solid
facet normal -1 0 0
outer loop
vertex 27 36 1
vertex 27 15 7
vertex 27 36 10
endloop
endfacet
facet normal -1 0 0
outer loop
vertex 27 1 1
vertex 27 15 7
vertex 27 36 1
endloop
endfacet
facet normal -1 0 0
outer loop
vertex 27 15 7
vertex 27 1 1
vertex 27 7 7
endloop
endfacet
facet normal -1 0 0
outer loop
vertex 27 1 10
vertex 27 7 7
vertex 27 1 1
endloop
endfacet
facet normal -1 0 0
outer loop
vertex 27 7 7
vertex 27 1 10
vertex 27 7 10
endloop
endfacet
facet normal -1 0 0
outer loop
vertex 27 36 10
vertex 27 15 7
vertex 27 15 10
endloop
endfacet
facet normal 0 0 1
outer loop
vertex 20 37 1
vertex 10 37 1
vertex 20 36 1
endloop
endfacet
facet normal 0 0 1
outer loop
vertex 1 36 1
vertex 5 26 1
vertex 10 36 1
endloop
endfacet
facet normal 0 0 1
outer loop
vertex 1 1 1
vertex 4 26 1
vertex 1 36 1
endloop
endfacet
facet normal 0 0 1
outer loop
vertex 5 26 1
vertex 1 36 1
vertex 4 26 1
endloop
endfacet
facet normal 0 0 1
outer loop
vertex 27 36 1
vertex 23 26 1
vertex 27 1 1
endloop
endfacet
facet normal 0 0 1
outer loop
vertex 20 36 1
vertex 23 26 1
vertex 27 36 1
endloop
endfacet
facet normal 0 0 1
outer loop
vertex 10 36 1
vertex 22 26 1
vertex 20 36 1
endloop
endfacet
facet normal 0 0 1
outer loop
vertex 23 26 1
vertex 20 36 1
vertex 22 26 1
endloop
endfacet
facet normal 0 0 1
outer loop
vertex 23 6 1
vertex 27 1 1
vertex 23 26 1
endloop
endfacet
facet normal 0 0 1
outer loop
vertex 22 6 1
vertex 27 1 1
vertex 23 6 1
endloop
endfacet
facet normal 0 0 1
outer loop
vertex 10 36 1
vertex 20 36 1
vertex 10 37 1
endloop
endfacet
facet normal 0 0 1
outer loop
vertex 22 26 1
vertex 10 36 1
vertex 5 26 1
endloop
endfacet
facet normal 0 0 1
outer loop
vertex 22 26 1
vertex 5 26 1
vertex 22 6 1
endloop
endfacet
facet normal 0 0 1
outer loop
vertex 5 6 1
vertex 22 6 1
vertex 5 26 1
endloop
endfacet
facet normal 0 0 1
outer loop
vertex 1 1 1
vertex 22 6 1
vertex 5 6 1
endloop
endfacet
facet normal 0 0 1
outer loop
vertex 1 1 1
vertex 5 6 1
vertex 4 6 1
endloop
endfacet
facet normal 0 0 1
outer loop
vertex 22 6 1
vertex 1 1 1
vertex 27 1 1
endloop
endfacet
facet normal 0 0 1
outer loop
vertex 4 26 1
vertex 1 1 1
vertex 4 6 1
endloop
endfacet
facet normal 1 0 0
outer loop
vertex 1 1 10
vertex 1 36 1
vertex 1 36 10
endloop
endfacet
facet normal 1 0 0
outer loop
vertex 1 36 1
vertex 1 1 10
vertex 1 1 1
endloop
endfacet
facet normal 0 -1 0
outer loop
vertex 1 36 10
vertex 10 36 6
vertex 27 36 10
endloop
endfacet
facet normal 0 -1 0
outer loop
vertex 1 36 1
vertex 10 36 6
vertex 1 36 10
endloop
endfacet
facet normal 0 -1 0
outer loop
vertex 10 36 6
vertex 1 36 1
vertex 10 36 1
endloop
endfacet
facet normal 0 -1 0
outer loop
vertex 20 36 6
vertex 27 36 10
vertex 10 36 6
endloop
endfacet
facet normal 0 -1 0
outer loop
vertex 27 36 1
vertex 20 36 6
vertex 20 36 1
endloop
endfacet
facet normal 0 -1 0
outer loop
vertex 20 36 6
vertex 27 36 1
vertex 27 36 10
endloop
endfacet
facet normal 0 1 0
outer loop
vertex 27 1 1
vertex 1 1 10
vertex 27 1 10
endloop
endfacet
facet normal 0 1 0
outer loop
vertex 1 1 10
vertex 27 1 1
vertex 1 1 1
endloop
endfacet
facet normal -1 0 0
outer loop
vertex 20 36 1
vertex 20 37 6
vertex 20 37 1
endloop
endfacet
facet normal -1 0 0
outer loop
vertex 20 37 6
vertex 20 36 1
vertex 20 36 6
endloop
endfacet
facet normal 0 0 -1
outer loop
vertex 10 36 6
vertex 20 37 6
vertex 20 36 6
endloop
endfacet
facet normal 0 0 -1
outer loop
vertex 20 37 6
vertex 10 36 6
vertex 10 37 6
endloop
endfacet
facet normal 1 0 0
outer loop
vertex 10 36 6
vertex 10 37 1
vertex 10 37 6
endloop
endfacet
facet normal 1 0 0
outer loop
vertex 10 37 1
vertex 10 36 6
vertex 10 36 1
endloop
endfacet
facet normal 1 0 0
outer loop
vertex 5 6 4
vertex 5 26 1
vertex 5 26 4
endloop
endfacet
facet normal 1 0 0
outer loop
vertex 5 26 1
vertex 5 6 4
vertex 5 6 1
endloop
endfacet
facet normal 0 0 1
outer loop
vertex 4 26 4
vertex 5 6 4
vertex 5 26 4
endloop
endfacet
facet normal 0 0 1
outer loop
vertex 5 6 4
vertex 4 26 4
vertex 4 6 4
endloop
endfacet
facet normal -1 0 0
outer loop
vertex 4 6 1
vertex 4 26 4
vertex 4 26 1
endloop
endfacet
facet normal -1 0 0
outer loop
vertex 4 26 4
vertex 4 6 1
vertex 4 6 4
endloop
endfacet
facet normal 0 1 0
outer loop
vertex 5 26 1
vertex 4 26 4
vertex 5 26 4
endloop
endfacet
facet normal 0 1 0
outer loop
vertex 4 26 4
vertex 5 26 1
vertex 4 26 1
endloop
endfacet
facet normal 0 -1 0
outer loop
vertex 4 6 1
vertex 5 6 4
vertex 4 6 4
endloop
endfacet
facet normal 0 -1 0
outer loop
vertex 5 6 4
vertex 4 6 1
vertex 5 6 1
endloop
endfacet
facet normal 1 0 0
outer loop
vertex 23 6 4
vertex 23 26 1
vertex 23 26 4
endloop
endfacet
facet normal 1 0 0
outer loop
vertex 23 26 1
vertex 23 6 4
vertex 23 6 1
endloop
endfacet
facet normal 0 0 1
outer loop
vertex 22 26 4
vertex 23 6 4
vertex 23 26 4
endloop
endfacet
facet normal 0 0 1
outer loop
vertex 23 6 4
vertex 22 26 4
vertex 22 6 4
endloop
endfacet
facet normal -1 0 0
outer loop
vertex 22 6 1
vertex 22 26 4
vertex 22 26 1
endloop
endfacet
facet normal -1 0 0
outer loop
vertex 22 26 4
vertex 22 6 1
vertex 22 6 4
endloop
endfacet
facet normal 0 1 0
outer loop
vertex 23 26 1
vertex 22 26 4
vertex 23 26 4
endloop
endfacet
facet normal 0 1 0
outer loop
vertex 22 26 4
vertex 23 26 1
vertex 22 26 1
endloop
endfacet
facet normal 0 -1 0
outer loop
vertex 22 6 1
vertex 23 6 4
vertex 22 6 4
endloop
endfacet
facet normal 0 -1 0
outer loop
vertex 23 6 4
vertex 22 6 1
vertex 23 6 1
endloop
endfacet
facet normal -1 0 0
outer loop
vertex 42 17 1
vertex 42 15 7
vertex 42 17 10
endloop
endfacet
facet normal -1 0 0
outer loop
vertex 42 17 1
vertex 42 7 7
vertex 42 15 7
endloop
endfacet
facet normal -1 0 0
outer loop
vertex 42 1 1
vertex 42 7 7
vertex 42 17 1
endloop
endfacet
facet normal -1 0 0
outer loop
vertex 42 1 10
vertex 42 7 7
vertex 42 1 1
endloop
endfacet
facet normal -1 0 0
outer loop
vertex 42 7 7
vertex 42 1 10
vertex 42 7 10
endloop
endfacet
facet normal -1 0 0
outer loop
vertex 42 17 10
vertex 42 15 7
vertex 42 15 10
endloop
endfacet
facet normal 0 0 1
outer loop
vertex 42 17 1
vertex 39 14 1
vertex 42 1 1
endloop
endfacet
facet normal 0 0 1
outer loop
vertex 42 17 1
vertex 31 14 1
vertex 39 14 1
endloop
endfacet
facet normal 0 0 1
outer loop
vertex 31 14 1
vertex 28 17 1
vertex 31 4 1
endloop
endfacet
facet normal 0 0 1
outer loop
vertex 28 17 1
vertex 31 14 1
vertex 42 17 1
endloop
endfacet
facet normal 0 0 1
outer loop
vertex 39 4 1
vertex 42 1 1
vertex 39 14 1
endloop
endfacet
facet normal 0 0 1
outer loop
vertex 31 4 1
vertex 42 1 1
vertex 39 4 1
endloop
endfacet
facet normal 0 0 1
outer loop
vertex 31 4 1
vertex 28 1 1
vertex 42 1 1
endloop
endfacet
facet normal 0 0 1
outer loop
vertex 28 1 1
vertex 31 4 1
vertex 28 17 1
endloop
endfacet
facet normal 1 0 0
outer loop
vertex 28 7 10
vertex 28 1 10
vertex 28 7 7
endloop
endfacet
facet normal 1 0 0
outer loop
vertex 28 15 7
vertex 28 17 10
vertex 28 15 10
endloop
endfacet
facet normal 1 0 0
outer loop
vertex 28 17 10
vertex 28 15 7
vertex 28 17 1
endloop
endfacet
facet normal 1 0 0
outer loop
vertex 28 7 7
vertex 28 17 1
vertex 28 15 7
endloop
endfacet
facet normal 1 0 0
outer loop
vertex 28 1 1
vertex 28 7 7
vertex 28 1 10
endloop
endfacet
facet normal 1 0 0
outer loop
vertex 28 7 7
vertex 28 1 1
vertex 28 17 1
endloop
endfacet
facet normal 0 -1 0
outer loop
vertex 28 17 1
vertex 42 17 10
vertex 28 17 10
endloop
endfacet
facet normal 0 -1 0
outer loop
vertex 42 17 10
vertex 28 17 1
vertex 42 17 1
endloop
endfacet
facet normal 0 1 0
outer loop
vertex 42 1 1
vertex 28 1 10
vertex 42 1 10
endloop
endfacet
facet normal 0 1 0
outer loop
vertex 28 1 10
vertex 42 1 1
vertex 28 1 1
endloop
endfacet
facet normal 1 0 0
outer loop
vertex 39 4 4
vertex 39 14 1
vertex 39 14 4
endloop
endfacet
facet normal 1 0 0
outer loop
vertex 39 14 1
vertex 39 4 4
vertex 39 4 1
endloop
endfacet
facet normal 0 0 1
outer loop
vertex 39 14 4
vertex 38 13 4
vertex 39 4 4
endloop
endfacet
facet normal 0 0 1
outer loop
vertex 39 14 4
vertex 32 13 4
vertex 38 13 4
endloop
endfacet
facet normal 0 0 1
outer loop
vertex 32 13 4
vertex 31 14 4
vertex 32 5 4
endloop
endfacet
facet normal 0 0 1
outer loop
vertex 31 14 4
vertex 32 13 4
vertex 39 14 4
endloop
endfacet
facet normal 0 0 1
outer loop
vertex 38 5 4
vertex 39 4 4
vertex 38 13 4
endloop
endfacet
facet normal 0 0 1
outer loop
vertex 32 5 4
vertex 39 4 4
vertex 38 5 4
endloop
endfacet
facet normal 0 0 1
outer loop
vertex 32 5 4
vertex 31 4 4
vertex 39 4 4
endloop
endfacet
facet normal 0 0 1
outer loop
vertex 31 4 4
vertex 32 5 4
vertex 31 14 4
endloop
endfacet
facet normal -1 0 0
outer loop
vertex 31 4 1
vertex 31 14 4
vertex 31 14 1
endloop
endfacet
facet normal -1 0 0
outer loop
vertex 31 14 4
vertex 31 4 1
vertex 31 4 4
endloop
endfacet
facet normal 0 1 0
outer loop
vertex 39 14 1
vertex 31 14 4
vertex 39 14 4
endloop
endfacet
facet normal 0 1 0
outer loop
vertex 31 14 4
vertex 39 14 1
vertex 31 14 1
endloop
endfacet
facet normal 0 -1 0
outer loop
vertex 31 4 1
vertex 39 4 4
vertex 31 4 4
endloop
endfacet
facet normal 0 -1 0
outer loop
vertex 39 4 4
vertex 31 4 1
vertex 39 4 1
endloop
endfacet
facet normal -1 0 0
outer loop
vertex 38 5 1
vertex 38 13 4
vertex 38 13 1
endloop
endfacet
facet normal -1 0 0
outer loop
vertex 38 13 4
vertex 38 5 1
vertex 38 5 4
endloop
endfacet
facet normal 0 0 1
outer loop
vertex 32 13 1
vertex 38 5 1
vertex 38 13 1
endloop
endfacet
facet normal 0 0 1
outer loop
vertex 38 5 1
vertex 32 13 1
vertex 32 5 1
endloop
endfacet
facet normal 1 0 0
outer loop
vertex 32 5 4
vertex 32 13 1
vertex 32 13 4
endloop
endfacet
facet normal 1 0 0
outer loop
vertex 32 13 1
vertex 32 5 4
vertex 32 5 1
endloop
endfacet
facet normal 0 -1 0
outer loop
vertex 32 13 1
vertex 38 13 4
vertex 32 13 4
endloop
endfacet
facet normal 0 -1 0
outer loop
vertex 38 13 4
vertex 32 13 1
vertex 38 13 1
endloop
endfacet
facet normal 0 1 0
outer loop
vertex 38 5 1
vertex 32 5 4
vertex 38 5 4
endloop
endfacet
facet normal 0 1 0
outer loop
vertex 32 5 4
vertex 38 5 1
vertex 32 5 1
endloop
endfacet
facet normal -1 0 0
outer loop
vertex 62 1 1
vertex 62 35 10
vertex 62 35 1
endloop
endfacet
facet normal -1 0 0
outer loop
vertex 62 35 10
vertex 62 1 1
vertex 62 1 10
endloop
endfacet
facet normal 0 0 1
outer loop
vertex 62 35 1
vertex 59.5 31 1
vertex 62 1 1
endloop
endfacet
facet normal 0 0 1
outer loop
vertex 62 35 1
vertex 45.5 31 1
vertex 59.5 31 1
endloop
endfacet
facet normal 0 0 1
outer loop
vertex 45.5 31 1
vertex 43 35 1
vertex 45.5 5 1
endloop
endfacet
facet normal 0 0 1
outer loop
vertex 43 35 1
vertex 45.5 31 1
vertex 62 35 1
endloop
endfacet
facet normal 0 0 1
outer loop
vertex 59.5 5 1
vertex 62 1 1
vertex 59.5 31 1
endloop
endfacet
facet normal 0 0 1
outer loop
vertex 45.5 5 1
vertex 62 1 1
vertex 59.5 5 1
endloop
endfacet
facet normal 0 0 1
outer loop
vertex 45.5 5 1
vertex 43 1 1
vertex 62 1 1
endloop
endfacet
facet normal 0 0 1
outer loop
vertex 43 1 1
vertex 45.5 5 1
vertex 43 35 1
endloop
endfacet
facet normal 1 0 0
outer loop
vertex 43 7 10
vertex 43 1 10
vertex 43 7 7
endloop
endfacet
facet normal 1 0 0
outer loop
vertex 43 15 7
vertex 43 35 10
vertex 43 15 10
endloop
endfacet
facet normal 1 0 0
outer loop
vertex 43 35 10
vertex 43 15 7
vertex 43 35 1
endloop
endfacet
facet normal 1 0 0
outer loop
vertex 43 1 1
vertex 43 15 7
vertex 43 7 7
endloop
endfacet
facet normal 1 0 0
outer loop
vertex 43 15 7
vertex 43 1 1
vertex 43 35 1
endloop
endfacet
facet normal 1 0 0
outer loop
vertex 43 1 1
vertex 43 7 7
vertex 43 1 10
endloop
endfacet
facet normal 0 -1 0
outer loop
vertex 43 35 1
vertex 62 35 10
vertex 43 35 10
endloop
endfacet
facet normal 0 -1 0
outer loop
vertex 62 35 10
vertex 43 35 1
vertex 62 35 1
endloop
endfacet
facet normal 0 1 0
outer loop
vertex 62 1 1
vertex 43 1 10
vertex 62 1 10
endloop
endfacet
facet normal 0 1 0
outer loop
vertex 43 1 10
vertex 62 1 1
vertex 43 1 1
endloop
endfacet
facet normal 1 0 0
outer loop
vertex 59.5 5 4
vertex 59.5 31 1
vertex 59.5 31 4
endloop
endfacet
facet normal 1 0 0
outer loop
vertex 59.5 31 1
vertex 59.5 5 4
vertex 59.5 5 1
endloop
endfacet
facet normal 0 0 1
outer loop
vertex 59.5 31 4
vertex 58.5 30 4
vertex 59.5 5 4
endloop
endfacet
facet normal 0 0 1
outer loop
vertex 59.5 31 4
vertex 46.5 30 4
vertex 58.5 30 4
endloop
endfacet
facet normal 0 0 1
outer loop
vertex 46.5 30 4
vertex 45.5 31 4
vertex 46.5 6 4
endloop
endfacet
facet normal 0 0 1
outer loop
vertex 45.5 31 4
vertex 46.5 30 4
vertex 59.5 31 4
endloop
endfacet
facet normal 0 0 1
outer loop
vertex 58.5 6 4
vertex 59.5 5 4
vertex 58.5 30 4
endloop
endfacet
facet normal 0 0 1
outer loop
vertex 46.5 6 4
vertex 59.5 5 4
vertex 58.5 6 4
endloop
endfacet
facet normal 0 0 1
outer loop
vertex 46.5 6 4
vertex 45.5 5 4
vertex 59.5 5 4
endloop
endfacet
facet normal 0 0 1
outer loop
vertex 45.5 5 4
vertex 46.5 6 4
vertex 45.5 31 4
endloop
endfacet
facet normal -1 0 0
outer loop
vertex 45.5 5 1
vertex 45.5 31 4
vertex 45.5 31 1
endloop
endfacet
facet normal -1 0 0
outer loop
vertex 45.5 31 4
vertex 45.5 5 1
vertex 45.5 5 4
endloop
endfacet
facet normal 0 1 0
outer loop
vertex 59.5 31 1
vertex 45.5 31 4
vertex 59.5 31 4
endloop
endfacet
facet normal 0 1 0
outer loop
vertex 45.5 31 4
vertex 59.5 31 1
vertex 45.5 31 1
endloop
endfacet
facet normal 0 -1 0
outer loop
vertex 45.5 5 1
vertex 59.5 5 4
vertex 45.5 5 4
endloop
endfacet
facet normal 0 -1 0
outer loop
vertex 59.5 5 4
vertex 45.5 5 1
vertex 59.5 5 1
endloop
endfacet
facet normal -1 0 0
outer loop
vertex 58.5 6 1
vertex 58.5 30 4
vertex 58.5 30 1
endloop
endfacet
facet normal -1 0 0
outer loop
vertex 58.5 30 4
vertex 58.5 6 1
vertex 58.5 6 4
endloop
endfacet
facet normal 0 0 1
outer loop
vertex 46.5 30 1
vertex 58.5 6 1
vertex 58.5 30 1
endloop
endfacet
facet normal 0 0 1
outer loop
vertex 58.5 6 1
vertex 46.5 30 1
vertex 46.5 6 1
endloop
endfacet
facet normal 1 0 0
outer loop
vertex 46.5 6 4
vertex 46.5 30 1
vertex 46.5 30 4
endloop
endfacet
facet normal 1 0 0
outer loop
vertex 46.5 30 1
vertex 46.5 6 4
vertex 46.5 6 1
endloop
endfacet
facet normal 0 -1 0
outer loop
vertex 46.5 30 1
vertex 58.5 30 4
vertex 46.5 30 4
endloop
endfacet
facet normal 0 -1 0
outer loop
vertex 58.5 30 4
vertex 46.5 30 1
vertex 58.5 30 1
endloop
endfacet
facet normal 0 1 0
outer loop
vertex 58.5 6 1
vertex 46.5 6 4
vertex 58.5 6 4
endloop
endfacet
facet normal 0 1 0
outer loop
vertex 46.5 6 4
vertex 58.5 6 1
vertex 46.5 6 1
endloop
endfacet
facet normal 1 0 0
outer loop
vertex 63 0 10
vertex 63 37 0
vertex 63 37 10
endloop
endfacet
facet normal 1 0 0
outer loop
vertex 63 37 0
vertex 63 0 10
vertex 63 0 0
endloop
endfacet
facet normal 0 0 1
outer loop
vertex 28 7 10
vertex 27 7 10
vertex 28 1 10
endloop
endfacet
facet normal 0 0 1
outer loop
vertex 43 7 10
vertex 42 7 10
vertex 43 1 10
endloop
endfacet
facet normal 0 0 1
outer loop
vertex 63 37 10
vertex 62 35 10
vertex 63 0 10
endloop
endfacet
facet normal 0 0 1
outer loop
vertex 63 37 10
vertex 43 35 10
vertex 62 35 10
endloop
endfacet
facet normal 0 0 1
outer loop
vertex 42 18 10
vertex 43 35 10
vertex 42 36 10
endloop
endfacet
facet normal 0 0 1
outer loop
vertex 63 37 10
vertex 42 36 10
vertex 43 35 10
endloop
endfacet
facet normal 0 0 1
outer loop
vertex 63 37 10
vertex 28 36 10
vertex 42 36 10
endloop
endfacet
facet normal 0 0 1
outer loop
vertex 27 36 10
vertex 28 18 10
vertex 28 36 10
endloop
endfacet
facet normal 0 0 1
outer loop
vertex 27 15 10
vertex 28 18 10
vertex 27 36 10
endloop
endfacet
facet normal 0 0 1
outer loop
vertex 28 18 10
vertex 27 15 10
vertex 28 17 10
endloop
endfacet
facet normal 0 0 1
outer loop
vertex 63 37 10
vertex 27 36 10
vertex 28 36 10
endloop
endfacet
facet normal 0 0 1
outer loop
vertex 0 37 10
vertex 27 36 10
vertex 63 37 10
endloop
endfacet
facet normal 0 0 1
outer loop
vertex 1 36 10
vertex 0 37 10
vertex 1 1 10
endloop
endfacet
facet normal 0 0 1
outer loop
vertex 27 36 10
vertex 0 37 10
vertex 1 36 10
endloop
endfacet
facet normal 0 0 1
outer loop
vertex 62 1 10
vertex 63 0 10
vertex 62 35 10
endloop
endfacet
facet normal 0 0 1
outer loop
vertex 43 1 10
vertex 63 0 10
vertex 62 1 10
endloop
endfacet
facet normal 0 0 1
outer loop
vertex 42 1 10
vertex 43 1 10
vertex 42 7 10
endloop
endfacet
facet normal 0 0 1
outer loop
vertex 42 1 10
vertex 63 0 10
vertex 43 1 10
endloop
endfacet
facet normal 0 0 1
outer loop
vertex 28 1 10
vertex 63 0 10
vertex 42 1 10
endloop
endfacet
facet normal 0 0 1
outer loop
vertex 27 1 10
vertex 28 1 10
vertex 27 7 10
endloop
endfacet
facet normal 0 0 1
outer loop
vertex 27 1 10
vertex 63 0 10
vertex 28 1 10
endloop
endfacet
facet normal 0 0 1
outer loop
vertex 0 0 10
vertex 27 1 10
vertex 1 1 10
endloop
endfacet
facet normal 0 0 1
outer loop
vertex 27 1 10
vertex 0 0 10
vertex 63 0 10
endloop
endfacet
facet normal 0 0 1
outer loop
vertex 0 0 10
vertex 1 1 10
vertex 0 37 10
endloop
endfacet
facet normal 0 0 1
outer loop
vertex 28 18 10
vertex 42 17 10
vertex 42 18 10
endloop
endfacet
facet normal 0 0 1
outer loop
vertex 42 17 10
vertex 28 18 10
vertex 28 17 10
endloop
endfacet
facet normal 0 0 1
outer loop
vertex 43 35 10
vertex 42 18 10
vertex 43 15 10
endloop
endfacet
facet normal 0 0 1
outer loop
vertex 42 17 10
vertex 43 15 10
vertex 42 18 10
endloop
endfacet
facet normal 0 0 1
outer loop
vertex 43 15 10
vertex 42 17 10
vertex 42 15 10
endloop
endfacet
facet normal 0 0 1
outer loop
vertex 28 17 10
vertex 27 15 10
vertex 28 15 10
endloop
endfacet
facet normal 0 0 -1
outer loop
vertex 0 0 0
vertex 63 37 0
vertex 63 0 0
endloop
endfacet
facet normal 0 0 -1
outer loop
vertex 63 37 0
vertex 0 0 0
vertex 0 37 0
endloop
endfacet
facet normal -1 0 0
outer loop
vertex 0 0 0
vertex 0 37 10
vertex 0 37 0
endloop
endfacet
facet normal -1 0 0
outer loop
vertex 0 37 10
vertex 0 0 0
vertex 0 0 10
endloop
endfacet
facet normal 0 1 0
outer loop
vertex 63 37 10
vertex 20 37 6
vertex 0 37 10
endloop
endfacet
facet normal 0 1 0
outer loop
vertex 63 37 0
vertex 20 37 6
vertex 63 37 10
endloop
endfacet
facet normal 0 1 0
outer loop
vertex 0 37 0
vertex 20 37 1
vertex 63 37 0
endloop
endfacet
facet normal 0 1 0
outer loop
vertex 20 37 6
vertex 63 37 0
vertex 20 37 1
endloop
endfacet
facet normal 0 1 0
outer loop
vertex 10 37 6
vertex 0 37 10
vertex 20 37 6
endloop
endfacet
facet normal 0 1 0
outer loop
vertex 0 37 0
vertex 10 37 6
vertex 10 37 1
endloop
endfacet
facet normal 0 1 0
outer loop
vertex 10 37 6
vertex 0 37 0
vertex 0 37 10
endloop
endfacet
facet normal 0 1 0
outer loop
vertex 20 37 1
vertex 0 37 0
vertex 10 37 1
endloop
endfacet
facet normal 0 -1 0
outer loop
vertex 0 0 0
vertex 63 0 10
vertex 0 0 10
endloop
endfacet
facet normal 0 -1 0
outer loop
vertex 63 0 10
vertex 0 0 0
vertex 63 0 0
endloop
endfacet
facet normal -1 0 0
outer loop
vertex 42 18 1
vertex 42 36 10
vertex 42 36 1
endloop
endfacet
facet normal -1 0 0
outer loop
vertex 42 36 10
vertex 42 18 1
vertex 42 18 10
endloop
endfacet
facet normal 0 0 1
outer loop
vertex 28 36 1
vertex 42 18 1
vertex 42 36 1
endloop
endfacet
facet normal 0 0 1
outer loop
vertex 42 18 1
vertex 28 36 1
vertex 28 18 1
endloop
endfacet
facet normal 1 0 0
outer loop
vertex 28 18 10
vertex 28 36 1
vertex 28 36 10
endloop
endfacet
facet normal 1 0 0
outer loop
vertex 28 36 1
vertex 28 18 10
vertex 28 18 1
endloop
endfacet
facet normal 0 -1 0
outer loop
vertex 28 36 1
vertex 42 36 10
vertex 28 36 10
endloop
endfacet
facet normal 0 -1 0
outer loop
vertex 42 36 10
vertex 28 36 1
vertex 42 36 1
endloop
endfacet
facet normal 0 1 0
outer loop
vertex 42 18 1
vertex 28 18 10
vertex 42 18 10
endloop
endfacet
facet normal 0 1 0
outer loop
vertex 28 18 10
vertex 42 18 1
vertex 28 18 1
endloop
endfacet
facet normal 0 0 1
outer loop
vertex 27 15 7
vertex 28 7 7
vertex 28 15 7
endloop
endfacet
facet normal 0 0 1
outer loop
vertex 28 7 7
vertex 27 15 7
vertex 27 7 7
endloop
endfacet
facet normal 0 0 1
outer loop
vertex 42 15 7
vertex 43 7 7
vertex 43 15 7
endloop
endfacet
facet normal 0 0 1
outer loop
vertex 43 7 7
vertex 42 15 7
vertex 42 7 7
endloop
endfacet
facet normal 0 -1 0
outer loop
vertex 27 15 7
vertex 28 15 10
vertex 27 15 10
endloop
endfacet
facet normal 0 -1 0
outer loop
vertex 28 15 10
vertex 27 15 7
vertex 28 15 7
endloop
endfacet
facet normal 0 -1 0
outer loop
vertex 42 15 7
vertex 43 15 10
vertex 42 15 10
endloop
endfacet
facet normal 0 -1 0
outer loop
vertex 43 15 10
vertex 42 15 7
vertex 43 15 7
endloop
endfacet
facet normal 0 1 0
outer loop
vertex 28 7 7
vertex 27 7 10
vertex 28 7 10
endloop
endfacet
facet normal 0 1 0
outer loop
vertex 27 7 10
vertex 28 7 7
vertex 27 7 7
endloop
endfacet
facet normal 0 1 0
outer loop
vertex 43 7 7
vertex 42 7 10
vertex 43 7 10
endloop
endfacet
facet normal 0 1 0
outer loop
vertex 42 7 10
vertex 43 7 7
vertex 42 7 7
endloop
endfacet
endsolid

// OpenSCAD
// OPENSCA Model for encloser for Tine's table
// Curently 3 devices Waatuino, 3.3v to 5v and esp wemos d1 mini
$fn=100;
wiggle=0.01;
module wemos(){
    difference(){
        union(){
            //wemos d1 mini 26mmx35mm h7mm 
            cube([26,35,10]);
            translate([9,32,0]) cube([10,5,5]);
        }
        translate([3,5,-wiggle]) cube([1,20,3+wiggle]);
        translate([21,5,-wiggle]) cube([1,20,3+wiggle]);
    }
}
module v5v3(){
    union(){
        difference(){
            //volatege level shifter 5v 3v 14mmx16mm h7mm 
            cube([14,16,10]);
            translate([3,3,-wiggle]) cube([8,10,3+wiggle]);
        }
        translate([4,4,0]) cube([6,8,3+wiggle]);
    }
}
module blanker(){
    //volatege level shifter 5v 3v 14mmx16mm h7mm 
    cube([14,18,10]);
}
module wattuino(){
    //wattuino arduino 5v clone 22mmx32mm h7mm 
    union(){
        difference(){
            cube([19,34,10]);
            translate([2.5,4,-wiggle]) cube([14,26,3+wiggle]);
        }
        translate([3.5,5,0]) cube([12,24,3+wiggle]); 
    }
}
module casing(){
    //outer casing 
    cube([63,37,10]);
}
module cabling(){
    //cabling boom 
    cube([50,8,3.01]);
}
module enclosure(){
    //outer casing and substract
    difference(){
        casing();
        translate([1,1,1]) wemos();
        translate([28,1,1]) v5v3();
        translate([43,1,1]) wattuino();
        translate([28,18,1]) blanker();
        translate([7,7,7]) cabling();
        }
}

enclosure();
